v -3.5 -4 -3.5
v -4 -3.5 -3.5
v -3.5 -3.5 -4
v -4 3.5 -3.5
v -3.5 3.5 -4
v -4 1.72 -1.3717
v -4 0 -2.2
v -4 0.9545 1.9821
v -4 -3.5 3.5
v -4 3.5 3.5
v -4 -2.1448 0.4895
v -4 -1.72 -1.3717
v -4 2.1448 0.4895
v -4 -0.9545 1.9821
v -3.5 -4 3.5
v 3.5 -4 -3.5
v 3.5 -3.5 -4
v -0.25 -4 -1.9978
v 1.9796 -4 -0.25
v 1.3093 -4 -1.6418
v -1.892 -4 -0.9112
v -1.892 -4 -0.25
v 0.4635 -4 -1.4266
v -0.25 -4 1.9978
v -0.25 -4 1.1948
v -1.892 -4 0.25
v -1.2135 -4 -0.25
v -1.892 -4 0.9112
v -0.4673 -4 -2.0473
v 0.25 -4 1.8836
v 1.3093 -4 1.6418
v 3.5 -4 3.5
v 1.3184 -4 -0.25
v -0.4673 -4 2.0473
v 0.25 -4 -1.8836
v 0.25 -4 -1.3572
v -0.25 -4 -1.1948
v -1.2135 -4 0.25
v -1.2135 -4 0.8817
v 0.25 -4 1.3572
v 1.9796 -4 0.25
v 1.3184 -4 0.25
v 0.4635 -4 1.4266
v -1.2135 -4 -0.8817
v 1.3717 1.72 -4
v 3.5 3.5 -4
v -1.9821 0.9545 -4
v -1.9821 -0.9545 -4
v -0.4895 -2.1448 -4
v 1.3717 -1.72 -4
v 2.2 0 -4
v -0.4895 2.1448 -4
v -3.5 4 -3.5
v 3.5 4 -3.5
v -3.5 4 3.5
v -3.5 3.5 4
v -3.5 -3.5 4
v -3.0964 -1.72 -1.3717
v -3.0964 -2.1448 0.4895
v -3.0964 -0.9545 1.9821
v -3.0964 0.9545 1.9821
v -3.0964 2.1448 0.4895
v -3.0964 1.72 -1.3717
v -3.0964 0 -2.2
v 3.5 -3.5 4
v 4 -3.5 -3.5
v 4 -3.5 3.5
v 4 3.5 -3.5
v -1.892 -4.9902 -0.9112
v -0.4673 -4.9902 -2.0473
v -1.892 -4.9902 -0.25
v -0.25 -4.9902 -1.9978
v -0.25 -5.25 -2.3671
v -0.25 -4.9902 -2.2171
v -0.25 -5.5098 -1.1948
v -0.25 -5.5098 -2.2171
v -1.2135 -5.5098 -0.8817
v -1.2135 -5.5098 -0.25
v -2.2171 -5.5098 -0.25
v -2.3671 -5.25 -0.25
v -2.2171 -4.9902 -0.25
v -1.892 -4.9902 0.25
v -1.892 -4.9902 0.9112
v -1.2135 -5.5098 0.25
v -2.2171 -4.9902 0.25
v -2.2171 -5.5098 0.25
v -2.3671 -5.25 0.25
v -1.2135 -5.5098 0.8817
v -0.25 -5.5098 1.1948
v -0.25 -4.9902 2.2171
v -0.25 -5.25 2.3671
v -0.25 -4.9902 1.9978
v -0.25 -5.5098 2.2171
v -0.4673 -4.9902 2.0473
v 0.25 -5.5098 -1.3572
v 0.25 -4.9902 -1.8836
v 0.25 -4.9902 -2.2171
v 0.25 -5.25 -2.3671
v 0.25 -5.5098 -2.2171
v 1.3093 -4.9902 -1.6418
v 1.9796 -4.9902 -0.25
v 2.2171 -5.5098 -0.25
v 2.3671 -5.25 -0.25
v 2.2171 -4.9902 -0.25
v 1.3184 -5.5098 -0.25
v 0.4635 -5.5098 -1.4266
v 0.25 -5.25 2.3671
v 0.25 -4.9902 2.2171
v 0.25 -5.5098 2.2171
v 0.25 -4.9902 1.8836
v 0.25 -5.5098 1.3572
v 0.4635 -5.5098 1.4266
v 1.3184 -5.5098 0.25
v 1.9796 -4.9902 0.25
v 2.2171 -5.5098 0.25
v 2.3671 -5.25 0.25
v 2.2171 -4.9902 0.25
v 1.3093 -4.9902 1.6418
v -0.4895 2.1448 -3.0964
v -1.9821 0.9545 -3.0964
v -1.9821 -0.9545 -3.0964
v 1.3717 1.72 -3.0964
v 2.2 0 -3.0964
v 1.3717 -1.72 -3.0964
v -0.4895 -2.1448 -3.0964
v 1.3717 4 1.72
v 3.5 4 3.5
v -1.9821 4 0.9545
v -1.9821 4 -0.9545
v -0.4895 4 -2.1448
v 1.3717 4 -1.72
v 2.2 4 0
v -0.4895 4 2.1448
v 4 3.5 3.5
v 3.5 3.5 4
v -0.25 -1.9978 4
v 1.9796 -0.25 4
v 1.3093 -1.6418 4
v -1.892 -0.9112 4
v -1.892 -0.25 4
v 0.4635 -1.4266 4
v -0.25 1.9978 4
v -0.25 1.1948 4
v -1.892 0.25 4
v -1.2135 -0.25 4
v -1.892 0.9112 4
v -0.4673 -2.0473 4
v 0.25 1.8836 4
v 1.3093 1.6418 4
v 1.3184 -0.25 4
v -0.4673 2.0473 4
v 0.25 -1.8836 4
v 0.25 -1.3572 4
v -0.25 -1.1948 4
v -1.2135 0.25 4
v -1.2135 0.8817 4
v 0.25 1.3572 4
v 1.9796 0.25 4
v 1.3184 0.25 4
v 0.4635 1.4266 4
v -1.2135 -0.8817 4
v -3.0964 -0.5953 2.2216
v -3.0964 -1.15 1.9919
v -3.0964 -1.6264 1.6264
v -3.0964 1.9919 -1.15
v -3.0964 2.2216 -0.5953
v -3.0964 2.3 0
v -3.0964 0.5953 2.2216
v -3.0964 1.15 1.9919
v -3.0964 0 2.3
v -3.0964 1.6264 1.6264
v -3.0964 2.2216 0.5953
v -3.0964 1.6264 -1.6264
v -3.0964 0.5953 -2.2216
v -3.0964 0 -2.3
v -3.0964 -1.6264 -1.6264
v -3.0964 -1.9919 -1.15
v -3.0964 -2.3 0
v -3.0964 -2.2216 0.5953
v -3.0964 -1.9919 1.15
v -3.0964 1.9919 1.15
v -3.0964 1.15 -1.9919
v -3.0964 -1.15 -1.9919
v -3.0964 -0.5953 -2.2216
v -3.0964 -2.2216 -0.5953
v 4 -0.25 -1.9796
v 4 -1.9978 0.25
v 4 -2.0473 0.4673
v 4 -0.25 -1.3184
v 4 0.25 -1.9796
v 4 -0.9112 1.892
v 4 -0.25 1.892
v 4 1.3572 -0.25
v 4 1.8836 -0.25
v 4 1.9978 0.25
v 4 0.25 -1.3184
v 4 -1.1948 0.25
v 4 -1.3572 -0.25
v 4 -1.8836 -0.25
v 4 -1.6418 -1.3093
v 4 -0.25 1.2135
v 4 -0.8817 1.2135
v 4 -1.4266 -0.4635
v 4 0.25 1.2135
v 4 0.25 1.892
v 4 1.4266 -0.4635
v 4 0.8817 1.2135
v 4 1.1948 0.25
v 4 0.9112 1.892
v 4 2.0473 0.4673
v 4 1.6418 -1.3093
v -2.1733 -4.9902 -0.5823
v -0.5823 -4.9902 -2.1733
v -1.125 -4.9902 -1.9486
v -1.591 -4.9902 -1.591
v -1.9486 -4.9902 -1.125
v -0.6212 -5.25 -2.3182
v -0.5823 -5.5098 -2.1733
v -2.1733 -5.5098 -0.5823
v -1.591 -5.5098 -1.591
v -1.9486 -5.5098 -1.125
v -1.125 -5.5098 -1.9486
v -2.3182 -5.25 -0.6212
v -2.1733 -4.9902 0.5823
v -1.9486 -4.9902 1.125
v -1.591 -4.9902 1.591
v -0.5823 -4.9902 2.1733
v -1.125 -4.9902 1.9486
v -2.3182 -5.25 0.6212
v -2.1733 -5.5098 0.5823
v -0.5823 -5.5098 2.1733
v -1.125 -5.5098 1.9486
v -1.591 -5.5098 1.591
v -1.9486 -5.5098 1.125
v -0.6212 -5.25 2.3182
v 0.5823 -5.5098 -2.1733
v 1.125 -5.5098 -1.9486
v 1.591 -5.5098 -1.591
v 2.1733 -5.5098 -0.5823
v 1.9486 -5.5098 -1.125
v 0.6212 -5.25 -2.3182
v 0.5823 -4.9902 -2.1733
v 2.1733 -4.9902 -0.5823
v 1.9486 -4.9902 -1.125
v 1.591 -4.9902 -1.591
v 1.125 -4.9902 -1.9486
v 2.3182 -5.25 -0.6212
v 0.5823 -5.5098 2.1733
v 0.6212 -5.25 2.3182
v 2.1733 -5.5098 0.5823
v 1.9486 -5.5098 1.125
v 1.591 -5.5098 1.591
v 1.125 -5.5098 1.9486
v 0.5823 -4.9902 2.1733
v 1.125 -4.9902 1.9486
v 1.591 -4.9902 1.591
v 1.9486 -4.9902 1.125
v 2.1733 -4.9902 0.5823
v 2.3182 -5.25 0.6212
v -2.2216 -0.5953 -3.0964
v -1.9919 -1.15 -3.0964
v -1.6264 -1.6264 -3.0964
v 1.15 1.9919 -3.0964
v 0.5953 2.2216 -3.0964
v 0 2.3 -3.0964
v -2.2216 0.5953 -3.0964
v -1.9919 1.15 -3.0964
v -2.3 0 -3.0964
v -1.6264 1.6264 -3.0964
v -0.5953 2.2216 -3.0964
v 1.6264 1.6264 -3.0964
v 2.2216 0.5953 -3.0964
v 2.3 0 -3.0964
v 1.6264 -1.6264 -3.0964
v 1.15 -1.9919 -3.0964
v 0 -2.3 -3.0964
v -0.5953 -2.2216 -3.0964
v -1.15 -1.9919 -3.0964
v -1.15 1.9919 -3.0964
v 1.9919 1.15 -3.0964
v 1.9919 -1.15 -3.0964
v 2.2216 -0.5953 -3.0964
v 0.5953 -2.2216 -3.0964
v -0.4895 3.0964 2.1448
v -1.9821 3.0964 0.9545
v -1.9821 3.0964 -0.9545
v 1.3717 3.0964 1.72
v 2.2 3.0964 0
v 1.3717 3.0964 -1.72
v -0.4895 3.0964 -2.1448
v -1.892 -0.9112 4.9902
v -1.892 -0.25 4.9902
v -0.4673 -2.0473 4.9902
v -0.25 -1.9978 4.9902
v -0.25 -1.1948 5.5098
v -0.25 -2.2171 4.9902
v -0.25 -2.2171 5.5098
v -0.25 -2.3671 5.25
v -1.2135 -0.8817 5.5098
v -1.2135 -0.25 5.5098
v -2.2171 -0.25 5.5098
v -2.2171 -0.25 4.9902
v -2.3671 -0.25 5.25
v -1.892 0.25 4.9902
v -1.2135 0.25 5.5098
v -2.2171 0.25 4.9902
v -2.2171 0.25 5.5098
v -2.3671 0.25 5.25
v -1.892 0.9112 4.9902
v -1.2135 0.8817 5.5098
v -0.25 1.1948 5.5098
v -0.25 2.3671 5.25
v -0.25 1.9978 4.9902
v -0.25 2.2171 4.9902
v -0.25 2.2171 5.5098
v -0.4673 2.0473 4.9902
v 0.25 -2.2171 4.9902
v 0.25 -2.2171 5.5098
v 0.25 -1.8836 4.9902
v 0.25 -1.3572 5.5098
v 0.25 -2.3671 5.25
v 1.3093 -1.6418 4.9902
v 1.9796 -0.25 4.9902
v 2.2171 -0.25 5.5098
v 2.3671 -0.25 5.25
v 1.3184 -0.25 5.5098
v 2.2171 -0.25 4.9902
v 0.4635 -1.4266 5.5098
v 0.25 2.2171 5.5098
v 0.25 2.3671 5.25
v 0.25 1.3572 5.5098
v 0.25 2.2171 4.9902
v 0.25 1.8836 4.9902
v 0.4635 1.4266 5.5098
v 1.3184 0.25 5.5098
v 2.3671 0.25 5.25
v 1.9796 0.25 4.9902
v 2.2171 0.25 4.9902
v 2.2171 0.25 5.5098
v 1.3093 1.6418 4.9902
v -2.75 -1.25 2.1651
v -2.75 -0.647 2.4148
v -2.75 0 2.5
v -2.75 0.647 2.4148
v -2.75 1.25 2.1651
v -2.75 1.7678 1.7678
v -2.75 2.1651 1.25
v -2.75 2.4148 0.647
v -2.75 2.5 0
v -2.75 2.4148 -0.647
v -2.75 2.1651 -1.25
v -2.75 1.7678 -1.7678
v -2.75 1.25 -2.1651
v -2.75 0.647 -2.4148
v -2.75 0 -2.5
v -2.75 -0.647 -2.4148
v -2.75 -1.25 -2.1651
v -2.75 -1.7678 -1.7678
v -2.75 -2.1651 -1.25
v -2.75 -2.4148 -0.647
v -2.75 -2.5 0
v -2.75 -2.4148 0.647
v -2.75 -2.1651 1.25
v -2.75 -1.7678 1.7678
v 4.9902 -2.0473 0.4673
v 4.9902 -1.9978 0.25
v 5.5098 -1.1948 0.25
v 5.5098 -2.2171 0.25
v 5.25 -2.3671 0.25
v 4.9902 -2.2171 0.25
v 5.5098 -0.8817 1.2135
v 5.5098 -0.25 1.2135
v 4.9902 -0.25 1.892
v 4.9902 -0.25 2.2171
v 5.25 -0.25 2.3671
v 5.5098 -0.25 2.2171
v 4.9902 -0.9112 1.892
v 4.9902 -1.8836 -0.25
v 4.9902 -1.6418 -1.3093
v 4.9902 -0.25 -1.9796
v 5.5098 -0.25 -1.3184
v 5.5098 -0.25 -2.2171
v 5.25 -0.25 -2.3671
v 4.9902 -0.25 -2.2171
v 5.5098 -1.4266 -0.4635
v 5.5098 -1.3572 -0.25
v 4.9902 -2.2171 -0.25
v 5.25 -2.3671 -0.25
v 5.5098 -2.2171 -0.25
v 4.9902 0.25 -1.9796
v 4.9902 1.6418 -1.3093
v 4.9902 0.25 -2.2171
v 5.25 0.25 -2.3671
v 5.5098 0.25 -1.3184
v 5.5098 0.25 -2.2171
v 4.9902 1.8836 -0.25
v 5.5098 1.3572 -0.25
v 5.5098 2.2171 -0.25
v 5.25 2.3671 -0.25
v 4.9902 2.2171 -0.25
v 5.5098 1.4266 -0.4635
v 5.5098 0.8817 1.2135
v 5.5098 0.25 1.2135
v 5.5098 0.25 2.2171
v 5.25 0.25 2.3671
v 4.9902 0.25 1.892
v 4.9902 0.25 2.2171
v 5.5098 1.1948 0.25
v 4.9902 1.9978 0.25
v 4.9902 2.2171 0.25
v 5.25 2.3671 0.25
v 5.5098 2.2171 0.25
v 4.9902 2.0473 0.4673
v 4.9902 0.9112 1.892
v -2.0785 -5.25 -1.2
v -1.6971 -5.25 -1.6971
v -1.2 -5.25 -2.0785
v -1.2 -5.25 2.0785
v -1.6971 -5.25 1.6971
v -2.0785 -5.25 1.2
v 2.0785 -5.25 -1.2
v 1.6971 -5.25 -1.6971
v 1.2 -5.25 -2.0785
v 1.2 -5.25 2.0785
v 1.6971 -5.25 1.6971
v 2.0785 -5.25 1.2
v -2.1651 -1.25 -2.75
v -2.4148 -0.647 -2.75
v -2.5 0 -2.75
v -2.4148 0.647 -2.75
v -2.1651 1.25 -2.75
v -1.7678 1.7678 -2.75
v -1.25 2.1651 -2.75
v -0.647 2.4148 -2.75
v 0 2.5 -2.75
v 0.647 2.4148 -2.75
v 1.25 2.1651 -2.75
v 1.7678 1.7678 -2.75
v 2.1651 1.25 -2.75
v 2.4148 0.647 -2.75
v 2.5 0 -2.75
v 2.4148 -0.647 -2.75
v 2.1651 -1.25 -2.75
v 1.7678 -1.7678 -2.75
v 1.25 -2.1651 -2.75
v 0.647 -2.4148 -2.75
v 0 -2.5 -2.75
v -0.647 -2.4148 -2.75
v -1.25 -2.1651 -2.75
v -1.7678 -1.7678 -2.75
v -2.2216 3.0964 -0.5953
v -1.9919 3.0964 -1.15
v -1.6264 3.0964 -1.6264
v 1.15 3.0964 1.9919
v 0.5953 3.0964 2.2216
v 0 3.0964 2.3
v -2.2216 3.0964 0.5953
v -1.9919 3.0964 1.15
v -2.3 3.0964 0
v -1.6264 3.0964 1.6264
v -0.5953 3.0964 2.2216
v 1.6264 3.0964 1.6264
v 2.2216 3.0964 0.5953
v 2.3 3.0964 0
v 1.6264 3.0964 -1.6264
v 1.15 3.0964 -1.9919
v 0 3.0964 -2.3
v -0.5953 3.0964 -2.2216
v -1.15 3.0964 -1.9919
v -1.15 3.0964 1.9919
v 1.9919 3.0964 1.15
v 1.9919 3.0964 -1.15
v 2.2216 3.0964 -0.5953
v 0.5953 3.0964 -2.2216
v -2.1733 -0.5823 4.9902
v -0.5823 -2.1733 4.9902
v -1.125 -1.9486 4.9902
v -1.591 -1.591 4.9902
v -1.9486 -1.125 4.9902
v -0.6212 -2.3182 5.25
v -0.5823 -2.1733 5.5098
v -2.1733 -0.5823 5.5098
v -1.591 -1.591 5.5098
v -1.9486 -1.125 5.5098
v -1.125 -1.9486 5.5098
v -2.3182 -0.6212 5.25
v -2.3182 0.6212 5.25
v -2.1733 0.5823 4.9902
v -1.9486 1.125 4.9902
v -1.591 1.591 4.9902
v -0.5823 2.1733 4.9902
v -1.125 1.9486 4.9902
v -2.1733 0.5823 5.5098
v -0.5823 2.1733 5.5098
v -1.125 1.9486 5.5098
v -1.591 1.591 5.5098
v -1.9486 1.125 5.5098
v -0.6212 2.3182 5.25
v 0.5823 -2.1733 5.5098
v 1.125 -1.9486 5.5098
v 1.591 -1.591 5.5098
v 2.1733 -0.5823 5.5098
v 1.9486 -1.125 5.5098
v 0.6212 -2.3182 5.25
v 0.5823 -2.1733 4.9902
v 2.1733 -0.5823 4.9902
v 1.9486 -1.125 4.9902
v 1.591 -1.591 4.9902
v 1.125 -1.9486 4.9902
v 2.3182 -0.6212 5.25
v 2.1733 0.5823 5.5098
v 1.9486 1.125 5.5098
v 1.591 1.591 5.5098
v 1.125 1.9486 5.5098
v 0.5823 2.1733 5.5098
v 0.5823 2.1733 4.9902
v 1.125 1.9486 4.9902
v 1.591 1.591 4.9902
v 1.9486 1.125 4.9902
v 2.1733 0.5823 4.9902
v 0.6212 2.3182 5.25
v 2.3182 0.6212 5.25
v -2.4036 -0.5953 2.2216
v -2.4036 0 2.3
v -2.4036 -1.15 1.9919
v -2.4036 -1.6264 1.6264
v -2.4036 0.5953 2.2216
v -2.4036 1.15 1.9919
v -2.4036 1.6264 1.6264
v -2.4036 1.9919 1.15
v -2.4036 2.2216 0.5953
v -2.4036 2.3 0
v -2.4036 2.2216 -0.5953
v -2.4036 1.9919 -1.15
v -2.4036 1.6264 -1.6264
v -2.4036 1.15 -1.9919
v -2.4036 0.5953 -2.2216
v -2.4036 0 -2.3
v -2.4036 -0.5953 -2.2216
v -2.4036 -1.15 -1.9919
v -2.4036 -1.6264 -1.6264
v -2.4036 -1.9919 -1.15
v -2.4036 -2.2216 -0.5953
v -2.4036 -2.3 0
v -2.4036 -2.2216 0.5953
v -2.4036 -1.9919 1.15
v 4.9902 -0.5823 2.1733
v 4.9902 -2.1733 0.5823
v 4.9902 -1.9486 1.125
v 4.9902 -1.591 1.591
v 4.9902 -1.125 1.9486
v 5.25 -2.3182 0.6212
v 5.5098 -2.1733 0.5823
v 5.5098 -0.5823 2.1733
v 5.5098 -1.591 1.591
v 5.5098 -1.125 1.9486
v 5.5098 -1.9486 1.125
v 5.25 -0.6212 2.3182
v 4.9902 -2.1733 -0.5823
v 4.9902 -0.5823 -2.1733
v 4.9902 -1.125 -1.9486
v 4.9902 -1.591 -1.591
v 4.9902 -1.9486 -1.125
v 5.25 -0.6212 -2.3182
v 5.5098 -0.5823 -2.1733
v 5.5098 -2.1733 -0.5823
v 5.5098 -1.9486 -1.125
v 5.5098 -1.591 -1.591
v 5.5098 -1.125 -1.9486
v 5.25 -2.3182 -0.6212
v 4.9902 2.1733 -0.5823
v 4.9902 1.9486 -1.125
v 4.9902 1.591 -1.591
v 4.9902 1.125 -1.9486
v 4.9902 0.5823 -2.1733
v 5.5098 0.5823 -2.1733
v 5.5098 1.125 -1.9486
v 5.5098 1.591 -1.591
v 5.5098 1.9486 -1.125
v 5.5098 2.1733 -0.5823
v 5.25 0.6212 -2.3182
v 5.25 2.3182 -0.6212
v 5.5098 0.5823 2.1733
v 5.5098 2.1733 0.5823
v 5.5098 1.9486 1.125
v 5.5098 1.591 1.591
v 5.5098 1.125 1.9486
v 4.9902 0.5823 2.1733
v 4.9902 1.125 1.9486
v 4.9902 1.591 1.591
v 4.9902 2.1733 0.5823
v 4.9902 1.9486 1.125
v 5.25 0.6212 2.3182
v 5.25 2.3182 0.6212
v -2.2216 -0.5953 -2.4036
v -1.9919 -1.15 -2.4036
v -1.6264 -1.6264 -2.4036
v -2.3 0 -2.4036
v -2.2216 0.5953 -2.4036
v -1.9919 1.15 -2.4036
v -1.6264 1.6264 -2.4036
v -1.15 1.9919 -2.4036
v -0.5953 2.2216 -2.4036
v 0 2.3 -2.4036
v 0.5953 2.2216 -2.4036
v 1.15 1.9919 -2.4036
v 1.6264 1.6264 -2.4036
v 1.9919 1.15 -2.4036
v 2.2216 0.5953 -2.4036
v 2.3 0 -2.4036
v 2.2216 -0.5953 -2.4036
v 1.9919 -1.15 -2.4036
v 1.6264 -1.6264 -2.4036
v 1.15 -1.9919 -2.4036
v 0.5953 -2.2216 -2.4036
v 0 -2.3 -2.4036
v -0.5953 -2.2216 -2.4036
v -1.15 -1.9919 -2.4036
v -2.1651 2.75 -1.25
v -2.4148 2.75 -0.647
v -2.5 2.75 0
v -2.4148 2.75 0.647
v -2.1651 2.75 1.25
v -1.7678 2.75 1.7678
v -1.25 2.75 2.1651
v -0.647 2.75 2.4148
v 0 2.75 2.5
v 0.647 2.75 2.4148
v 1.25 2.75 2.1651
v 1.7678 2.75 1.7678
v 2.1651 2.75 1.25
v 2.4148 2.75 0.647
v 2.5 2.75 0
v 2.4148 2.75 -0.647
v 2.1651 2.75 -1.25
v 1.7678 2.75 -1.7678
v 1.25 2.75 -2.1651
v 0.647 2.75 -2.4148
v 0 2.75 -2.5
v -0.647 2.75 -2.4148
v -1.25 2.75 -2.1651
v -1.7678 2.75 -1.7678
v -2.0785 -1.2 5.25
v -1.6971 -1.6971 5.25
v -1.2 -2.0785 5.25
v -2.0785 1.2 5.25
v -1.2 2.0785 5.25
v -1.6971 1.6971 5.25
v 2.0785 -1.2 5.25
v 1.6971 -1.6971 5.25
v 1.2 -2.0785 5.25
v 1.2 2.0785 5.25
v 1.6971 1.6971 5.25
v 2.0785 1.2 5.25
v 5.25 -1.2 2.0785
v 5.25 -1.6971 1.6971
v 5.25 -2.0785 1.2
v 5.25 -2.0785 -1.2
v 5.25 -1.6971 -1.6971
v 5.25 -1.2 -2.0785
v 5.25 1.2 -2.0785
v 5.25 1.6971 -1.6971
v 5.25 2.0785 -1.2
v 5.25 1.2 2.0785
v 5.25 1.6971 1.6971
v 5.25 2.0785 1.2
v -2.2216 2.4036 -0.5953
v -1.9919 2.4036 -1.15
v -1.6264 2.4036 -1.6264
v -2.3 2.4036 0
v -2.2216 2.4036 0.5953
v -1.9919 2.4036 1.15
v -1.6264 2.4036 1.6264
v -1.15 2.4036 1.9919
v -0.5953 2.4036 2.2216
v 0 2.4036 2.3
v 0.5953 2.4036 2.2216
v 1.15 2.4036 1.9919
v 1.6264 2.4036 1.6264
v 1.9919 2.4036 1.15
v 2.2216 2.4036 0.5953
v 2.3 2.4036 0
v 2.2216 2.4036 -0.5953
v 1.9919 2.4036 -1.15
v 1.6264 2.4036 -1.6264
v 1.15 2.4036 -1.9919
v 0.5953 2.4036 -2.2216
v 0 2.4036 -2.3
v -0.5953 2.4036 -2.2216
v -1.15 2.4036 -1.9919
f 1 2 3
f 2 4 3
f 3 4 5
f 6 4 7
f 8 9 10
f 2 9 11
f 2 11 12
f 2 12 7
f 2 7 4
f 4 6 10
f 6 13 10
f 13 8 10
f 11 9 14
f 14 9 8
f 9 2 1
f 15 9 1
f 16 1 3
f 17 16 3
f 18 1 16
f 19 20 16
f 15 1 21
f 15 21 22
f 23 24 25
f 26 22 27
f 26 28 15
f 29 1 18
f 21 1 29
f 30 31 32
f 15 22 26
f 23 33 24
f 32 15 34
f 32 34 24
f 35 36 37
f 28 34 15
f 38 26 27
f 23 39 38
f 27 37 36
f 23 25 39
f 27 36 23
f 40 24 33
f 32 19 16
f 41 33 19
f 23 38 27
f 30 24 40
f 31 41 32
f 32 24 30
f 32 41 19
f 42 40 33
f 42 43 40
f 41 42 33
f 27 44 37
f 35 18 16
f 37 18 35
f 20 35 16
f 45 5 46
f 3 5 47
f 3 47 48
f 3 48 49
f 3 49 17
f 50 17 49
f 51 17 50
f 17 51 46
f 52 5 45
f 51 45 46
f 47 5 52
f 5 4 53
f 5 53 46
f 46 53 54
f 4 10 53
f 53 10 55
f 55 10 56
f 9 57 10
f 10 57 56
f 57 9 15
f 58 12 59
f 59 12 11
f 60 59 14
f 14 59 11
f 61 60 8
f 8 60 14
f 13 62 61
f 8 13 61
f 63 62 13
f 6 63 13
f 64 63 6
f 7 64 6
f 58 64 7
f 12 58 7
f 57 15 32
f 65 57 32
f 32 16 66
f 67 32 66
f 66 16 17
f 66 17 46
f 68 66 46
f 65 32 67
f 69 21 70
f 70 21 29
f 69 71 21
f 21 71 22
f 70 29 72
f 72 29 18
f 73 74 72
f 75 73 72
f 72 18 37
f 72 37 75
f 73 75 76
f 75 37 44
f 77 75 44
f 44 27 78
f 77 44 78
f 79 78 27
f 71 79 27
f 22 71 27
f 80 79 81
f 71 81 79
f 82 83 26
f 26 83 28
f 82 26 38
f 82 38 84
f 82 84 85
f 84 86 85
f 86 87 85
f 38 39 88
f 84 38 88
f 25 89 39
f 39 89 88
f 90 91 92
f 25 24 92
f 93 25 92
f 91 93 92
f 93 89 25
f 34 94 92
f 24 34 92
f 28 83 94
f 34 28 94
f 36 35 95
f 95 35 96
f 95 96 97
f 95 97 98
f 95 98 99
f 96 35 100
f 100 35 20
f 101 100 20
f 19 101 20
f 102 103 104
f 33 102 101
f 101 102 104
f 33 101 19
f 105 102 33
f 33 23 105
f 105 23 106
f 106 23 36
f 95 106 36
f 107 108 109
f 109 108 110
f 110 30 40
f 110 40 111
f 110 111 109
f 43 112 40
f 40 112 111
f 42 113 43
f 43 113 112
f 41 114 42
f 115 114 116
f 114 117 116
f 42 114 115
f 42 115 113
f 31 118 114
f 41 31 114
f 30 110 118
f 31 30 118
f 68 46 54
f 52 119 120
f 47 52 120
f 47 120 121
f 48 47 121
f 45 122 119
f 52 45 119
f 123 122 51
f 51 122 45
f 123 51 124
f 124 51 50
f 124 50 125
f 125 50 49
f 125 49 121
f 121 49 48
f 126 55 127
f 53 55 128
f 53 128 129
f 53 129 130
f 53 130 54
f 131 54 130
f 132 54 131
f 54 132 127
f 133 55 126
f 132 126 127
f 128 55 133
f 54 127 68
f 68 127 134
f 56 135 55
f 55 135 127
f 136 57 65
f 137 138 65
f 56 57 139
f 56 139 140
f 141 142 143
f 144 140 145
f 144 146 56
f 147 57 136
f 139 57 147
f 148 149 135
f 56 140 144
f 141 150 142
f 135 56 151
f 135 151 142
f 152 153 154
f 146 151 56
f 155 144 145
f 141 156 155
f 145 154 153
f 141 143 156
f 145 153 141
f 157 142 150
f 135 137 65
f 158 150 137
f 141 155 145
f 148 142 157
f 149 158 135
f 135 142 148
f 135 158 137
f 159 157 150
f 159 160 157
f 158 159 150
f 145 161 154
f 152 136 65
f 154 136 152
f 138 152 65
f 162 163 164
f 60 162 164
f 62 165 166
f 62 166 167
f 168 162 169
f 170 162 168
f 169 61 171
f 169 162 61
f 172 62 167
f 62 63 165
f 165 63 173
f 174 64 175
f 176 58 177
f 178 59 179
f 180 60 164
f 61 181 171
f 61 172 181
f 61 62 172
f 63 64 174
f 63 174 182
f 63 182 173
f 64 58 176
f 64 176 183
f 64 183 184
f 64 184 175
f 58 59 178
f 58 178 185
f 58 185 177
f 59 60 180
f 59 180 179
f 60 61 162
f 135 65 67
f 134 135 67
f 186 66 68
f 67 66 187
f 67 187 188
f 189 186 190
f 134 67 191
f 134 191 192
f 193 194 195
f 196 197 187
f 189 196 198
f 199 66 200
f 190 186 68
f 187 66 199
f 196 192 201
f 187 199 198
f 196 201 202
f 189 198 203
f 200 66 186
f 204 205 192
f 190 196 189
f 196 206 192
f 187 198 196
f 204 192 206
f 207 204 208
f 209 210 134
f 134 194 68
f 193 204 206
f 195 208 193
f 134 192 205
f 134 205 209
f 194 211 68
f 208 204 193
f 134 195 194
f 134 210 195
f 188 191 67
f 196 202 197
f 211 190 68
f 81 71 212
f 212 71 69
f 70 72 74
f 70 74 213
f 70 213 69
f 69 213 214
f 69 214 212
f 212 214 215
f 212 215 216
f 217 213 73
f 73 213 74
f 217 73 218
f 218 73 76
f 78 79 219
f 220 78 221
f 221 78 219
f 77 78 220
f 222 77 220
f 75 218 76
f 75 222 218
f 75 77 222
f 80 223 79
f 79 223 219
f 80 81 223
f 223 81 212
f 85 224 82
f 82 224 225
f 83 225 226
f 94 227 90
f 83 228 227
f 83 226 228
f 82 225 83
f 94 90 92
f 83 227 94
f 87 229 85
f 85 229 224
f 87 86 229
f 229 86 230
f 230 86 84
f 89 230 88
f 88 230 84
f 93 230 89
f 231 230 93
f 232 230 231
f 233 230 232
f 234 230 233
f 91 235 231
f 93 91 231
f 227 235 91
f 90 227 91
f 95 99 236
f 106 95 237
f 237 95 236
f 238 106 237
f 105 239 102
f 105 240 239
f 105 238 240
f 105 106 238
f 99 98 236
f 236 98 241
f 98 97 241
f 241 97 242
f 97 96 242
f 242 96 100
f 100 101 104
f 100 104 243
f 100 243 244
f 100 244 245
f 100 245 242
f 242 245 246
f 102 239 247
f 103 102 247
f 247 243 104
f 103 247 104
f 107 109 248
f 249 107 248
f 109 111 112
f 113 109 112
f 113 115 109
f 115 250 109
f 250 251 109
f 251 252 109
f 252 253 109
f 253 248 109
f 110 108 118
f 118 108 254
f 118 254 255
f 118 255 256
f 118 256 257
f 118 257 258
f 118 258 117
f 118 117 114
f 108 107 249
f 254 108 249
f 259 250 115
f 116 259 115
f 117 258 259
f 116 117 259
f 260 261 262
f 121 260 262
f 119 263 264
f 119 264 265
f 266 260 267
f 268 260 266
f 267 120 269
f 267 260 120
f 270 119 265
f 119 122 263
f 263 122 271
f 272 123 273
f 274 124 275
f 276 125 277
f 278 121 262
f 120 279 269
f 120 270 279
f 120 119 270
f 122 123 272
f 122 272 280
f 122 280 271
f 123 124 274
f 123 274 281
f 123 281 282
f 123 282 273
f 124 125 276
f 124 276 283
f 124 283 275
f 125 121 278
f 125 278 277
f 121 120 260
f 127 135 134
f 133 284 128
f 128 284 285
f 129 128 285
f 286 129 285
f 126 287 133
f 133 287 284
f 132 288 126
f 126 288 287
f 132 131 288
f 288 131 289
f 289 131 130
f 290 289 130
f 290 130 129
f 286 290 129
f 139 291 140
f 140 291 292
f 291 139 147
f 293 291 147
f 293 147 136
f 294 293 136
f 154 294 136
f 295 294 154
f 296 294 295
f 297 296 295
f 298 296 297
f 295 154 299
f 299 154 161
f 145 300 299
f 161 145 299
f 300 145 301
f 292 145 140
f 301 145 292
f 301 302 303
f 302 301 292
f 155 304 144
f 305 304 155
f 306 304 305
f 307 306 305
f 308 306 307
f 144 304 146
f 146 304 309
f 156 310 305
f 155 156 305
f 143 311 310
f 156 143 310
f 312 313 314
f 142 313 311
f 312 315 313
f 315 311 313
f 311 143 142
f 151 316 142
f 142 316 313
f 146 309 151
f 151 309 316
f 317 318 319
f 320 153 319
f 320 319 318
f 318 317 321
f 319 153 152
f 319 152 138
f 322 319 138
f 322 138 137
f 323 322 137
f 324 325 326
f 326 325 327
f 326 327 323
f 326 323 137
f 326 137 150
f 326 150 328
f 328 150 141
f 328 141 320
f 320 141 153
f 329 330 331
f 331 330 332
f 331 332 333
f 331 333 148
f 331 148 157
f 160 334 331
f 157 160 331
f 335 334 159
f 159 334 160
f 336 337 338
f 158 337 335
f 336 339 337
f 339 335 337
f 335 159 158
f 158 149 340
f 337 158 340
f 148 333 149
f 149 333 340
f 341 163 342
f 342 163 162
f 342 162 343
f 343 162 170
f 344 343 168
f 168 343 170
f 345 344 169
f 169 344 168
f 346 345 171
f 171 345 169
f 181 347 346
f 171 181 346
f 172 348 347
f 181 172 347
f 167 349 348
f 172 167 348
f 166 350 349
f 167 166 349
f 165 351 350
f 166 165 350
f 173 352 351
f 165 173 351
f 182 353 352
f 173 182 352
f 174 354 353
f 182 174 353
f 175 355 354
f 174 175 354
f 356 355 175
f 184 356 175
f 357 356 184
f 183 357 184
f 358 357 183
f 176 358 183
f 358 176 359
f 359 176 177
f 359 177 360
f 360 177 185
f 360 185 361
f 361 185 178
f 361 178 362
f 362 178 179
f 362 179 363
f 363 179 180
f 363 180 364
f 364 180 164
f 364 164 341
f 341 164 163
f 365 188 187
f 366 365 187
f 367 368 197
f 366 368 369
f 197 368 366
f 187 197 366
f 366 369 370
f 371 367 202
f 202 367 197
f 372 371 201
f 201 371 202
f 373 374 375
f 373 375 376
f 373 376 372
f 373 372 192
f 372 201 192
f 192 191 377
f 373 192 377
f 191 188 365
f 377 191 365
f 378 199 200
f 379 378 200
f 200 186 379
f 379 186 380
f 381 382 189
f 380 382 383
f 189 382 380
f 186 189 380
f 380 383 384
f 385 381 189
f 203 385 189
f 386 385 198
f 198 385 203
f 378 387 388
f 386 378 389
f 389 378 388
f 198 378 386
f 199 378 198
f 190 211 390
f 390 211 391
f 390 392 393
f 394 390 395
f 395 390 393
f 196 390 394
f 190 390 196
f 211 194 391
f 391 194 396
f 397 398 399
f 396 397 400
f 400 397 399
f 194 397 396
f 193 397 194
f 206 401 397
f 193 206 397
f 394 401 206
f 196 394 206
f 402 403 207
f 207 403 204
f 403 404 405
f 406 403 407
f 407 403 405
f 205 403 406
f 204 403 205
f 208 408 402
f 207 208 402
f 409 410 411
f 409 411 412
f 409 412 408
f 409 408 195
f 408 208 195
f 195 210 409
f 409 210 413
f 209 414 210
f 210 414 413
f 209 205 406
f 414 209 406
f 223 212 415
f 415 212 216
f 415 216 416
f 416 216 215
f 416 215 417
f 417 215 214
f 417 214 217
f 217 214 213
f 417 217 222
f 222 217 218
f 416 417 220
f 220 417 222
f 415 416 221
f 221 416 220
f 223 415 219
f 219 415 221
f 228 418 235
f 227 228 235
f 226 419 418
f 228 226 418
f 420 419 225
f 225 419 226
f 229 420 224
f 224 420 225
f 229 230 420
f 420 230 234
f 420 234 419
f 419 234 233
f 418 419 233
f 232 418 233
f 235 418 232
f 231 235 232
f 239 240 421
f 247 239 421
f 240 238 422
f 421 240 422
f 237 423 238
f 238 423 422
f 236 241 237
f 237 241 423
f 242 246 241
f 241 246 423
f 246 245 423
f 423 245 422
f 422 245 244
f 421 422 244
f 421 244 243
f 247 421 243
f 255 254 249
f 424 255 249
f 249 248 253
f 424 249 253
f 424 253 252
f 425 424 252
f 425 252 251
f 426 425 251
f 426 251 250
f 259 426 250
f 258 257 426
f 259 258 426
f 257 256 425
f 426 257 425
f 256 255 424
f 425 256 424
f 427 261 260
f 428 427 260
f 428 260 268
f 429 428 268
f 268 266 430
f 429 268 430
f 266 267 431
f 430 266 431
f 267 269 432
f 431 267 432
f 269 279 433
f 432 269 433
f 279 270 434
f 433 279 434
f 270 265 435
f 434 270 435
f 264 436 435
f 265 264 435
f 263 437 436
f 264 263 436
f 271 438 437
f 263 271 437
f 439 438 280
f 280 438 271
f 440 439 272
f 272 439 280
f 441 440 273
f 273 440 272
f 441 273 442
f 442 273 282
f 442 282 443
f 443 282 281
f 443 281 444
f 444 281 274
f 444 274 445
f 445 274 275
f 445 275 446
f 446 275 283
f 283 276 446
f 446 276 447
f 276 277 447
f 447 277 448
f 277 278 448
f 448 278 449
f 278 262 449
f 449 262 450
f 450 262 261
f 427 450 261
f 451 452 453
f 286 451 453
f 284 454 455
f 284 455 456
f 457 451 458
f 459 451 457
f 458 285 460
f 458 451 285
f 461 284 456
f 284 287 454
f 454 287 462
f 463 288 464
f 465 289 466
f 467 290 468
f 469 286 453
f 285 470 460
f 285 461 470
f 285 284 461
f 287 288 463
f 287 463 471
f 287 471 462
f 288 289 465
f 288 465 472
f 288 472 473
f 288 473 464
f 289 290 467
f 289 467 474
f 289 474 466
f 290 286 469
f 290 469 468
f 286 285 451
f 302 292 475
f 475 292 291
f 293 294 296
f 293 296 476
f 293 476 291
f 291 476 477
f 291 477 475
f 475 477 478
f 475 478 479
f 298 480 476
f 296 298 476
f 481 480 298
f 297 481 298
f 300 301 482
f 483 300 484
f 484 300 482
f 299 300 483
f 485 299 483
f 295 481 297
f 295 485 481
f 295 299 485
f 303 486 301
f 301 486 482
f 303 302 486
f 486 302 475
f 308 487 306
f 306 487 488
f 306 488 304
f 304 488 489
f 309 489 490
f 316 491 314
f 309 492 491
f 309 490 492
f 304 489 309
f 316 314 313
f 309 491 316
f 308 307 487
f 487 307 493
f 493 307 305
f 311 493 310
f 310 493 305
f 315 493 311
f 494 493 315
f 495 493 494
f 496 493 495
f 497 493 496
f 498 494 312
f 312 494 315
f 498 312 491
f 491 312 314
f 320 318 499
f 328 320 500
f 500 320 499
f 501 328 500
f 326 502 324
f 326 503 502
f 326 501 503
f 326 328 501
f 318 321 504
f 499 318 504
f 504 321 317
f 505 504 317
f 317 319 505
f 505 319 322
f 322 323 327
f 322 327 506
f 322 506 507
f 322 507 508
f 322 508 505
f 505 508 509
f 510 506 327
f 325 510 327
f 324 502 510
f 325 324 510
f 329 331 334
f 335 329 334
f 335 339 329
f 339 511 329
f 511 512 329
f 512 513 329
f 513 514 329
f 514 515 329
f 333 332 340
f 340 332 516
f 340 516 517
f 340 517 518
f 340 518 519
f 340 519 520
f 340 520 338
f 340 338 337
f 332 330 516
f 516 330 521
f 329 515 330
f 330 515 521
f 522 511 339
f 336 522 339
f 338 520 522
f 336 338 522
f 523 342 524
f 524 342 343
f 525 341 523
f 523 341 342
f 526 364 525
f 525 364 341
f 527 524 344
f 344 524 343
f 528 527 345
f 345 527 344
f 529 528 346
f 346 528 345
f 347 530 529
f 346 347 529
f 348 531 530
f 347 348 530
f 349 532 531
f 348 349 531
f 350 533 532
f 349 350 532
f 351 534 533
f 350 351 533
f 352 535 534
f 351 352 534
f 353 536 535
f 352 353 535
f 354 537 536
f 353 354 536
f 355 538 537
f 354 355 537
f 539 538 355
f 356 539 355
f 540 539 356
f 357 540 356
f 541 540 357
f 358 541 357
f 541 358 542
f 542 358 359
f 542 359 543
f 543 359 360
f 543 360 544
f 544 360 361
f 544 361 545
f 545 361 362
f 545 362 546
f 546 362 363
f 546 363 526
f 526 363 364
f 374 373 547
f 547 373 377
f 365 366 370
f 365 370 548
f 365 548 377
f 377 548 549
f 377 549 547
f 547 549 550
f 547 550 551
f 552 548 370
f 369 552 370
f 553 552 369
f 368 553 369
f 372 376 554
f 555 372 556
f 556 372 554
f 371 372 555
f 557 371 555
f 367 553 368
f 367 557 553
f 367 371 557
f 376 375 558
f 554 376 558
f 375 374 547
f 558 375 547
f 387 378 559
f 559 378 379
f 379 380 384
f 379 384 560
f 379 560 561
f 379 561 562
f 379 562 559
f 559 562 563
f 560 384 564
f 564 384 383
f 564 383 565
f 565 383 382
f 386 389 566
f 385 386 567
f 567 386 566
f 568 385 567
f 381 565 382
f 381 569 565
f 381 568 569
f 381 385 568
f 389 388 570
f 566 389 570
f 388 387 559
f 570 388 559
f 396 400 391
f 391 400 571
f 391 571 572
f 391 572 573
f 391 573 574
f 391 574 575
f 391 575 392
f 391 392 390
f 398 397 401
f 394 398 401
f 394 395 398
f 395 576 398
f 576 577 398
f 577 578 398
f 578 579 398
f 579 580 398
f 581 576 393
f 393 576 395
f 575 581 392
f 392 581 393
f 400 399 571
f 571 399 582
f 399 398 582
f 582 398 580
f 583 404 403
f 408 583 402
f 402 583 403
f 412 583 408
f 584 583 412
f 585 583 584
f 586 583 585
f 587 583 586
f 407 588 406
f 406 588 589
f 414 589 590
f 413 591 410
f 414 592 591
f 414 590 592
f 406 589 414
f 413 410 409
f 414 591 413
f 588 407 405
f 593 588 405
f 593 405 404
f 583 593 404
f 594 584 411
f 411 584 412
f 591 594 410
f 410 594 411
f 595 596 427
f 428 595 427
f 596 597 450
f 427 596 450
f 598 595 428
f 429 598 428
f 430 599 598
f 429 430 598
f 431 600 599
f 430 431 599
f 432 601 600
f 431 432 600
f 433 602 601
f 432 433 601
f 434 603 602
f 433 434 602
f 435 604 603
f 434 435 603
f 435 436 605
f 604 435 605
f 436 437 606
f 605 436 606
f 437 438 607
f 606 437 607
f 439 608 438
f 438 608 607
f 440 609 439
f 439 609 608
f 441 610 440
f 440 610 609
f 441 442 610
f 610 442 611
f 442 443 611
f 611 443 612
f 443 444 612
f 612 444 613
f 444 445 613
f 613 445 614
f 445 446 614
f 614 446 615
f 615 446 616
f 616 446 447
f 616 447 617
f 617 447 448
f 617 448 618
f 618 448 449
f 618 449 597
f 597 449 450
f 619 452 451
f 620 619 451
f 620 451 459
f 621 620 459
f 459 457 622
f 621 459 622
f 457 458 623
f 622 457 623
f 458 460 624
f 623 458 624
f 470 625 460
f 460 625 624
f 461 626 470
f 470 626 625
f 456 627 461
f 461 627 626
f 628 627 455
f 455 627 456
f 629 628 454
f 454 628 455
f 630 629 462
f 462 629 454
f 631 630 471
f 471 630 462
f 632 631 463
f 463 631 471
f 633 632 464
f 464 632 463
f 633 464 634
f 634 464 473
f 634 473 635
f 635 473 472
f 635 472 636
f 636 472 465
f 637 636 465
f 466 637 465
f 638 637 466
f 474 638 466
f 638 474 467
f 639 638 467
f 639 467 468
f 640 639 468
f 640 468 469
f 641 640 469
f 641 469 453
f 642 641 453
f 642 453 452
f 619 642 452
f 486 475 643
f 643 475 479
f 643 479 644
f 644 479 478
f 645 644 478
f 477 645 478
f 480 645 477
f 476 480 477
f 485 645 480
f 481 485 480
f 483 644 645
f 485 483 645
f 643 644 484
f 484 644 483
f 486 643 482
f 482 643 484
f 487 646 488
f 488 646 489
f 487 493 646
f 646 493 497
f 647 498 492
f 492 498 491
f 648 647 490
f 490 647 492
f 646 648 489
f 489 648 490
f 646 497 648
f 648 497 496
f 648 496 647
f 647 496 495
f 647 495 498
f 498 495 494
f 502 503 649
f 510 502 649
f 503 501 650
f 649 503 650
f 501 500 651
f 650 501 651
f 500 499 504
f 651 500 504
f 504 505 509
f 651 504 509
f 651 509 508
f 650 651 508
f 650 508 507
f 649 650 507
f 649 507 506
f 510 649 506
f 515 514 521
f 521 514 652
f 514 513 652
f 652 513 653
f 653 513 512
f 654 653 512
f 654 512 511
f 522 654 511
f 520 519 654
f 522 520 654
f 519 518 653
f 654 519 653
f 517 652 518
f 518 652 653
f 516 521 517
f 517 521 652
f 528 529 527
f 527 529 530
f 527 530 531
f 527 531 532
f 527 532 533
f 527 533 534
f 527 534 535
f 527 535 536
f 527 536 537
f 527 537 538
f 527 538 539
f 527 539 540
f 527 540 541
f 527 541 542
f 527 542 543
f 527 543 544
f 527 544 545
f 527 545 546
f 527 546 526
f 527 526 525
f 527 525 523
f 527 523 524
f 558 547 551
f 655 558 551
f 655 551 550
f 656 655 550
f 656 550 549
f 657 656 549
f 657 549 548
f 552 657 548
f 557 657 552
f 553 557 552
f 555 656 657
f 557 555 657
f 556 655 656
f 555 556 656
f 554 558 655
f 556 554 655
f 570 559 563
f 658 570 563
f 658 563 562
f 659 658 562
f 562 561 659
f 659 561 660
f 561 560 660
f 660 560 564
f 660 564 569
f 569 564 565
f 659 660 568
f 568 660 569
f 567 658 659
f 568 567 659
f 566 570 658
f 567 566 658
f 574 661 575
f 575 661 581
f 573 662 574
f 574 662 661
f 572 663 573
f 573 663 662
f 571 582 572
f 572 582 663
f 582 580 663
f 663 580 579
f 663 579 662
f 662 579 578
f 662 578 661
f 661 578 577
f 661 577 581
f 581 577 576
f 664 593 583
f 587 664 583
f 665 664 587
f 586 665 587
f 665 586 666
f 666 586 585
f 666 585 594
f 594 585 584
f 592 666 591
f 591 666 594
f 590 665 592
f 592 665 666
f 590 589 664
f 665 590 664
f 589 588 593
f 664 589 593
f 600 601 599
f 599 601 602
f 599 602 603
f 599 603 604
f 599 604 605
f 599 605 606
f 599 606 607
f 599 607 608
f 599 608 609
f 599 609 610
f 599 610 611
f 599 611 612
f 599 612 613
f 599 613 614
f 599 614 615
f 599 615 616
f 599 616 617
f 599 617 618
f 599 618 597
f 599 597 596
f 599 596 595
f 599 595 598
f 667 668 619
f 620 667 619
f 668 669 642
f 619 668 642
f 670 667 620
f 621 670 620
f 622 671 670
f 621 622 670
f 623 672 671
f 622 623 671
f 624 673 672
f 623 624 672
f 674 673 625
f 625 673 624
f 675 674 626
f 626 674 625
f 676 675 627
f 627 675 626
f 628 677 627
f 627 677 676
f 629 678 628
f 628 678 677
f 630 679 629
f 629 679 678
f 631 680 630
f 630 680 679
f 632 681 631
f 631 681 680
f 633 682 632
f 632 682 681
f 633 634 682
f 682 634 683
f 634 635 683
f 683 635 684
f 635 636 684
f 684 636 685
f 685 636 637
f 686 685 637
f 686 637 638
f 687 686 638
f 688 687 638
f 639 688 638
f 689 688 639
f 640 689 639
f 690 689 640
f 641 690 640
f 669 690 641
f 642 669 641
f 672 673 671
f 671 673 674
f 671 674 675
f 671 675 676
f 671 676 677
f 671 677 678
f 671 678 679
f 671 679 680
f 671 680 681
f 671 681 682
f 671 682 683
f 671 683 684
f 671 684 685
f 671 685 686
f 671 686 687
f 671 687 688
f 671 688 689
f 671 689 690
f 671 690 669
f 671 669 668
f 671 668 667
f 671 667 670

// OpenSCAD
cube_size=8;
peg_r=2.1;
peg_h=1.25;
interlock=.6;
break=.5;
gap=.1;
wall_t=.6;
champfer=1;


interlocking_cube();


module interlocking_cube(){
	difference(){
		union(){
			hull(){
				cube([cube_size-champfer,cube_size-champfer,cube_size],center=true);
				cube([cube_size,cube_size-champfer,cube_size-champfer],center=true);
				cube([cube_size-champfer,cube_size,cube_size-champfer],center=true);
			}
			interlock_m();
			rotate([90,0,0])interlock_m();
			rotate([0,90,0])interlock_m();
		}
		interlock_f();
		rotate([90,0,0])interlock_f();
		rotate([0,90,0])interlock_f();
	}
}
module interlock_m(){
	difference(){
		union(){
			cylinder(r=peg_r,h=peg_h+cube_size/2);
			hull(){
				for(ang=[0:15:360]){
					rotate([0,0,ang])translate([peg_r,0,cube_size/2+peg_h])sphere(r=interlock/2);
				}
			}
		}
		cylinder(r=peg_r-wall_t,h=peg_h+cube_size);
		cube([break,cube_size,cube_size+4*peg_h],center=true);
		cube([cube_size,break,cube_size+4*peg_h],center=true);
	}
}



module interlock_f(){
	translate([0,0,-cube_size])union(){
		cylinder(r=peg_r+gap,h=peg_h+cube_size/2+gap);
		hull(){
			for(ang=[0:15:360]){
				rotate([0,0,ang])translate([peg_r,0,cube_size/2+peg_h])sphere(r=interlock/2+gap);
			}
		}
	}
}
